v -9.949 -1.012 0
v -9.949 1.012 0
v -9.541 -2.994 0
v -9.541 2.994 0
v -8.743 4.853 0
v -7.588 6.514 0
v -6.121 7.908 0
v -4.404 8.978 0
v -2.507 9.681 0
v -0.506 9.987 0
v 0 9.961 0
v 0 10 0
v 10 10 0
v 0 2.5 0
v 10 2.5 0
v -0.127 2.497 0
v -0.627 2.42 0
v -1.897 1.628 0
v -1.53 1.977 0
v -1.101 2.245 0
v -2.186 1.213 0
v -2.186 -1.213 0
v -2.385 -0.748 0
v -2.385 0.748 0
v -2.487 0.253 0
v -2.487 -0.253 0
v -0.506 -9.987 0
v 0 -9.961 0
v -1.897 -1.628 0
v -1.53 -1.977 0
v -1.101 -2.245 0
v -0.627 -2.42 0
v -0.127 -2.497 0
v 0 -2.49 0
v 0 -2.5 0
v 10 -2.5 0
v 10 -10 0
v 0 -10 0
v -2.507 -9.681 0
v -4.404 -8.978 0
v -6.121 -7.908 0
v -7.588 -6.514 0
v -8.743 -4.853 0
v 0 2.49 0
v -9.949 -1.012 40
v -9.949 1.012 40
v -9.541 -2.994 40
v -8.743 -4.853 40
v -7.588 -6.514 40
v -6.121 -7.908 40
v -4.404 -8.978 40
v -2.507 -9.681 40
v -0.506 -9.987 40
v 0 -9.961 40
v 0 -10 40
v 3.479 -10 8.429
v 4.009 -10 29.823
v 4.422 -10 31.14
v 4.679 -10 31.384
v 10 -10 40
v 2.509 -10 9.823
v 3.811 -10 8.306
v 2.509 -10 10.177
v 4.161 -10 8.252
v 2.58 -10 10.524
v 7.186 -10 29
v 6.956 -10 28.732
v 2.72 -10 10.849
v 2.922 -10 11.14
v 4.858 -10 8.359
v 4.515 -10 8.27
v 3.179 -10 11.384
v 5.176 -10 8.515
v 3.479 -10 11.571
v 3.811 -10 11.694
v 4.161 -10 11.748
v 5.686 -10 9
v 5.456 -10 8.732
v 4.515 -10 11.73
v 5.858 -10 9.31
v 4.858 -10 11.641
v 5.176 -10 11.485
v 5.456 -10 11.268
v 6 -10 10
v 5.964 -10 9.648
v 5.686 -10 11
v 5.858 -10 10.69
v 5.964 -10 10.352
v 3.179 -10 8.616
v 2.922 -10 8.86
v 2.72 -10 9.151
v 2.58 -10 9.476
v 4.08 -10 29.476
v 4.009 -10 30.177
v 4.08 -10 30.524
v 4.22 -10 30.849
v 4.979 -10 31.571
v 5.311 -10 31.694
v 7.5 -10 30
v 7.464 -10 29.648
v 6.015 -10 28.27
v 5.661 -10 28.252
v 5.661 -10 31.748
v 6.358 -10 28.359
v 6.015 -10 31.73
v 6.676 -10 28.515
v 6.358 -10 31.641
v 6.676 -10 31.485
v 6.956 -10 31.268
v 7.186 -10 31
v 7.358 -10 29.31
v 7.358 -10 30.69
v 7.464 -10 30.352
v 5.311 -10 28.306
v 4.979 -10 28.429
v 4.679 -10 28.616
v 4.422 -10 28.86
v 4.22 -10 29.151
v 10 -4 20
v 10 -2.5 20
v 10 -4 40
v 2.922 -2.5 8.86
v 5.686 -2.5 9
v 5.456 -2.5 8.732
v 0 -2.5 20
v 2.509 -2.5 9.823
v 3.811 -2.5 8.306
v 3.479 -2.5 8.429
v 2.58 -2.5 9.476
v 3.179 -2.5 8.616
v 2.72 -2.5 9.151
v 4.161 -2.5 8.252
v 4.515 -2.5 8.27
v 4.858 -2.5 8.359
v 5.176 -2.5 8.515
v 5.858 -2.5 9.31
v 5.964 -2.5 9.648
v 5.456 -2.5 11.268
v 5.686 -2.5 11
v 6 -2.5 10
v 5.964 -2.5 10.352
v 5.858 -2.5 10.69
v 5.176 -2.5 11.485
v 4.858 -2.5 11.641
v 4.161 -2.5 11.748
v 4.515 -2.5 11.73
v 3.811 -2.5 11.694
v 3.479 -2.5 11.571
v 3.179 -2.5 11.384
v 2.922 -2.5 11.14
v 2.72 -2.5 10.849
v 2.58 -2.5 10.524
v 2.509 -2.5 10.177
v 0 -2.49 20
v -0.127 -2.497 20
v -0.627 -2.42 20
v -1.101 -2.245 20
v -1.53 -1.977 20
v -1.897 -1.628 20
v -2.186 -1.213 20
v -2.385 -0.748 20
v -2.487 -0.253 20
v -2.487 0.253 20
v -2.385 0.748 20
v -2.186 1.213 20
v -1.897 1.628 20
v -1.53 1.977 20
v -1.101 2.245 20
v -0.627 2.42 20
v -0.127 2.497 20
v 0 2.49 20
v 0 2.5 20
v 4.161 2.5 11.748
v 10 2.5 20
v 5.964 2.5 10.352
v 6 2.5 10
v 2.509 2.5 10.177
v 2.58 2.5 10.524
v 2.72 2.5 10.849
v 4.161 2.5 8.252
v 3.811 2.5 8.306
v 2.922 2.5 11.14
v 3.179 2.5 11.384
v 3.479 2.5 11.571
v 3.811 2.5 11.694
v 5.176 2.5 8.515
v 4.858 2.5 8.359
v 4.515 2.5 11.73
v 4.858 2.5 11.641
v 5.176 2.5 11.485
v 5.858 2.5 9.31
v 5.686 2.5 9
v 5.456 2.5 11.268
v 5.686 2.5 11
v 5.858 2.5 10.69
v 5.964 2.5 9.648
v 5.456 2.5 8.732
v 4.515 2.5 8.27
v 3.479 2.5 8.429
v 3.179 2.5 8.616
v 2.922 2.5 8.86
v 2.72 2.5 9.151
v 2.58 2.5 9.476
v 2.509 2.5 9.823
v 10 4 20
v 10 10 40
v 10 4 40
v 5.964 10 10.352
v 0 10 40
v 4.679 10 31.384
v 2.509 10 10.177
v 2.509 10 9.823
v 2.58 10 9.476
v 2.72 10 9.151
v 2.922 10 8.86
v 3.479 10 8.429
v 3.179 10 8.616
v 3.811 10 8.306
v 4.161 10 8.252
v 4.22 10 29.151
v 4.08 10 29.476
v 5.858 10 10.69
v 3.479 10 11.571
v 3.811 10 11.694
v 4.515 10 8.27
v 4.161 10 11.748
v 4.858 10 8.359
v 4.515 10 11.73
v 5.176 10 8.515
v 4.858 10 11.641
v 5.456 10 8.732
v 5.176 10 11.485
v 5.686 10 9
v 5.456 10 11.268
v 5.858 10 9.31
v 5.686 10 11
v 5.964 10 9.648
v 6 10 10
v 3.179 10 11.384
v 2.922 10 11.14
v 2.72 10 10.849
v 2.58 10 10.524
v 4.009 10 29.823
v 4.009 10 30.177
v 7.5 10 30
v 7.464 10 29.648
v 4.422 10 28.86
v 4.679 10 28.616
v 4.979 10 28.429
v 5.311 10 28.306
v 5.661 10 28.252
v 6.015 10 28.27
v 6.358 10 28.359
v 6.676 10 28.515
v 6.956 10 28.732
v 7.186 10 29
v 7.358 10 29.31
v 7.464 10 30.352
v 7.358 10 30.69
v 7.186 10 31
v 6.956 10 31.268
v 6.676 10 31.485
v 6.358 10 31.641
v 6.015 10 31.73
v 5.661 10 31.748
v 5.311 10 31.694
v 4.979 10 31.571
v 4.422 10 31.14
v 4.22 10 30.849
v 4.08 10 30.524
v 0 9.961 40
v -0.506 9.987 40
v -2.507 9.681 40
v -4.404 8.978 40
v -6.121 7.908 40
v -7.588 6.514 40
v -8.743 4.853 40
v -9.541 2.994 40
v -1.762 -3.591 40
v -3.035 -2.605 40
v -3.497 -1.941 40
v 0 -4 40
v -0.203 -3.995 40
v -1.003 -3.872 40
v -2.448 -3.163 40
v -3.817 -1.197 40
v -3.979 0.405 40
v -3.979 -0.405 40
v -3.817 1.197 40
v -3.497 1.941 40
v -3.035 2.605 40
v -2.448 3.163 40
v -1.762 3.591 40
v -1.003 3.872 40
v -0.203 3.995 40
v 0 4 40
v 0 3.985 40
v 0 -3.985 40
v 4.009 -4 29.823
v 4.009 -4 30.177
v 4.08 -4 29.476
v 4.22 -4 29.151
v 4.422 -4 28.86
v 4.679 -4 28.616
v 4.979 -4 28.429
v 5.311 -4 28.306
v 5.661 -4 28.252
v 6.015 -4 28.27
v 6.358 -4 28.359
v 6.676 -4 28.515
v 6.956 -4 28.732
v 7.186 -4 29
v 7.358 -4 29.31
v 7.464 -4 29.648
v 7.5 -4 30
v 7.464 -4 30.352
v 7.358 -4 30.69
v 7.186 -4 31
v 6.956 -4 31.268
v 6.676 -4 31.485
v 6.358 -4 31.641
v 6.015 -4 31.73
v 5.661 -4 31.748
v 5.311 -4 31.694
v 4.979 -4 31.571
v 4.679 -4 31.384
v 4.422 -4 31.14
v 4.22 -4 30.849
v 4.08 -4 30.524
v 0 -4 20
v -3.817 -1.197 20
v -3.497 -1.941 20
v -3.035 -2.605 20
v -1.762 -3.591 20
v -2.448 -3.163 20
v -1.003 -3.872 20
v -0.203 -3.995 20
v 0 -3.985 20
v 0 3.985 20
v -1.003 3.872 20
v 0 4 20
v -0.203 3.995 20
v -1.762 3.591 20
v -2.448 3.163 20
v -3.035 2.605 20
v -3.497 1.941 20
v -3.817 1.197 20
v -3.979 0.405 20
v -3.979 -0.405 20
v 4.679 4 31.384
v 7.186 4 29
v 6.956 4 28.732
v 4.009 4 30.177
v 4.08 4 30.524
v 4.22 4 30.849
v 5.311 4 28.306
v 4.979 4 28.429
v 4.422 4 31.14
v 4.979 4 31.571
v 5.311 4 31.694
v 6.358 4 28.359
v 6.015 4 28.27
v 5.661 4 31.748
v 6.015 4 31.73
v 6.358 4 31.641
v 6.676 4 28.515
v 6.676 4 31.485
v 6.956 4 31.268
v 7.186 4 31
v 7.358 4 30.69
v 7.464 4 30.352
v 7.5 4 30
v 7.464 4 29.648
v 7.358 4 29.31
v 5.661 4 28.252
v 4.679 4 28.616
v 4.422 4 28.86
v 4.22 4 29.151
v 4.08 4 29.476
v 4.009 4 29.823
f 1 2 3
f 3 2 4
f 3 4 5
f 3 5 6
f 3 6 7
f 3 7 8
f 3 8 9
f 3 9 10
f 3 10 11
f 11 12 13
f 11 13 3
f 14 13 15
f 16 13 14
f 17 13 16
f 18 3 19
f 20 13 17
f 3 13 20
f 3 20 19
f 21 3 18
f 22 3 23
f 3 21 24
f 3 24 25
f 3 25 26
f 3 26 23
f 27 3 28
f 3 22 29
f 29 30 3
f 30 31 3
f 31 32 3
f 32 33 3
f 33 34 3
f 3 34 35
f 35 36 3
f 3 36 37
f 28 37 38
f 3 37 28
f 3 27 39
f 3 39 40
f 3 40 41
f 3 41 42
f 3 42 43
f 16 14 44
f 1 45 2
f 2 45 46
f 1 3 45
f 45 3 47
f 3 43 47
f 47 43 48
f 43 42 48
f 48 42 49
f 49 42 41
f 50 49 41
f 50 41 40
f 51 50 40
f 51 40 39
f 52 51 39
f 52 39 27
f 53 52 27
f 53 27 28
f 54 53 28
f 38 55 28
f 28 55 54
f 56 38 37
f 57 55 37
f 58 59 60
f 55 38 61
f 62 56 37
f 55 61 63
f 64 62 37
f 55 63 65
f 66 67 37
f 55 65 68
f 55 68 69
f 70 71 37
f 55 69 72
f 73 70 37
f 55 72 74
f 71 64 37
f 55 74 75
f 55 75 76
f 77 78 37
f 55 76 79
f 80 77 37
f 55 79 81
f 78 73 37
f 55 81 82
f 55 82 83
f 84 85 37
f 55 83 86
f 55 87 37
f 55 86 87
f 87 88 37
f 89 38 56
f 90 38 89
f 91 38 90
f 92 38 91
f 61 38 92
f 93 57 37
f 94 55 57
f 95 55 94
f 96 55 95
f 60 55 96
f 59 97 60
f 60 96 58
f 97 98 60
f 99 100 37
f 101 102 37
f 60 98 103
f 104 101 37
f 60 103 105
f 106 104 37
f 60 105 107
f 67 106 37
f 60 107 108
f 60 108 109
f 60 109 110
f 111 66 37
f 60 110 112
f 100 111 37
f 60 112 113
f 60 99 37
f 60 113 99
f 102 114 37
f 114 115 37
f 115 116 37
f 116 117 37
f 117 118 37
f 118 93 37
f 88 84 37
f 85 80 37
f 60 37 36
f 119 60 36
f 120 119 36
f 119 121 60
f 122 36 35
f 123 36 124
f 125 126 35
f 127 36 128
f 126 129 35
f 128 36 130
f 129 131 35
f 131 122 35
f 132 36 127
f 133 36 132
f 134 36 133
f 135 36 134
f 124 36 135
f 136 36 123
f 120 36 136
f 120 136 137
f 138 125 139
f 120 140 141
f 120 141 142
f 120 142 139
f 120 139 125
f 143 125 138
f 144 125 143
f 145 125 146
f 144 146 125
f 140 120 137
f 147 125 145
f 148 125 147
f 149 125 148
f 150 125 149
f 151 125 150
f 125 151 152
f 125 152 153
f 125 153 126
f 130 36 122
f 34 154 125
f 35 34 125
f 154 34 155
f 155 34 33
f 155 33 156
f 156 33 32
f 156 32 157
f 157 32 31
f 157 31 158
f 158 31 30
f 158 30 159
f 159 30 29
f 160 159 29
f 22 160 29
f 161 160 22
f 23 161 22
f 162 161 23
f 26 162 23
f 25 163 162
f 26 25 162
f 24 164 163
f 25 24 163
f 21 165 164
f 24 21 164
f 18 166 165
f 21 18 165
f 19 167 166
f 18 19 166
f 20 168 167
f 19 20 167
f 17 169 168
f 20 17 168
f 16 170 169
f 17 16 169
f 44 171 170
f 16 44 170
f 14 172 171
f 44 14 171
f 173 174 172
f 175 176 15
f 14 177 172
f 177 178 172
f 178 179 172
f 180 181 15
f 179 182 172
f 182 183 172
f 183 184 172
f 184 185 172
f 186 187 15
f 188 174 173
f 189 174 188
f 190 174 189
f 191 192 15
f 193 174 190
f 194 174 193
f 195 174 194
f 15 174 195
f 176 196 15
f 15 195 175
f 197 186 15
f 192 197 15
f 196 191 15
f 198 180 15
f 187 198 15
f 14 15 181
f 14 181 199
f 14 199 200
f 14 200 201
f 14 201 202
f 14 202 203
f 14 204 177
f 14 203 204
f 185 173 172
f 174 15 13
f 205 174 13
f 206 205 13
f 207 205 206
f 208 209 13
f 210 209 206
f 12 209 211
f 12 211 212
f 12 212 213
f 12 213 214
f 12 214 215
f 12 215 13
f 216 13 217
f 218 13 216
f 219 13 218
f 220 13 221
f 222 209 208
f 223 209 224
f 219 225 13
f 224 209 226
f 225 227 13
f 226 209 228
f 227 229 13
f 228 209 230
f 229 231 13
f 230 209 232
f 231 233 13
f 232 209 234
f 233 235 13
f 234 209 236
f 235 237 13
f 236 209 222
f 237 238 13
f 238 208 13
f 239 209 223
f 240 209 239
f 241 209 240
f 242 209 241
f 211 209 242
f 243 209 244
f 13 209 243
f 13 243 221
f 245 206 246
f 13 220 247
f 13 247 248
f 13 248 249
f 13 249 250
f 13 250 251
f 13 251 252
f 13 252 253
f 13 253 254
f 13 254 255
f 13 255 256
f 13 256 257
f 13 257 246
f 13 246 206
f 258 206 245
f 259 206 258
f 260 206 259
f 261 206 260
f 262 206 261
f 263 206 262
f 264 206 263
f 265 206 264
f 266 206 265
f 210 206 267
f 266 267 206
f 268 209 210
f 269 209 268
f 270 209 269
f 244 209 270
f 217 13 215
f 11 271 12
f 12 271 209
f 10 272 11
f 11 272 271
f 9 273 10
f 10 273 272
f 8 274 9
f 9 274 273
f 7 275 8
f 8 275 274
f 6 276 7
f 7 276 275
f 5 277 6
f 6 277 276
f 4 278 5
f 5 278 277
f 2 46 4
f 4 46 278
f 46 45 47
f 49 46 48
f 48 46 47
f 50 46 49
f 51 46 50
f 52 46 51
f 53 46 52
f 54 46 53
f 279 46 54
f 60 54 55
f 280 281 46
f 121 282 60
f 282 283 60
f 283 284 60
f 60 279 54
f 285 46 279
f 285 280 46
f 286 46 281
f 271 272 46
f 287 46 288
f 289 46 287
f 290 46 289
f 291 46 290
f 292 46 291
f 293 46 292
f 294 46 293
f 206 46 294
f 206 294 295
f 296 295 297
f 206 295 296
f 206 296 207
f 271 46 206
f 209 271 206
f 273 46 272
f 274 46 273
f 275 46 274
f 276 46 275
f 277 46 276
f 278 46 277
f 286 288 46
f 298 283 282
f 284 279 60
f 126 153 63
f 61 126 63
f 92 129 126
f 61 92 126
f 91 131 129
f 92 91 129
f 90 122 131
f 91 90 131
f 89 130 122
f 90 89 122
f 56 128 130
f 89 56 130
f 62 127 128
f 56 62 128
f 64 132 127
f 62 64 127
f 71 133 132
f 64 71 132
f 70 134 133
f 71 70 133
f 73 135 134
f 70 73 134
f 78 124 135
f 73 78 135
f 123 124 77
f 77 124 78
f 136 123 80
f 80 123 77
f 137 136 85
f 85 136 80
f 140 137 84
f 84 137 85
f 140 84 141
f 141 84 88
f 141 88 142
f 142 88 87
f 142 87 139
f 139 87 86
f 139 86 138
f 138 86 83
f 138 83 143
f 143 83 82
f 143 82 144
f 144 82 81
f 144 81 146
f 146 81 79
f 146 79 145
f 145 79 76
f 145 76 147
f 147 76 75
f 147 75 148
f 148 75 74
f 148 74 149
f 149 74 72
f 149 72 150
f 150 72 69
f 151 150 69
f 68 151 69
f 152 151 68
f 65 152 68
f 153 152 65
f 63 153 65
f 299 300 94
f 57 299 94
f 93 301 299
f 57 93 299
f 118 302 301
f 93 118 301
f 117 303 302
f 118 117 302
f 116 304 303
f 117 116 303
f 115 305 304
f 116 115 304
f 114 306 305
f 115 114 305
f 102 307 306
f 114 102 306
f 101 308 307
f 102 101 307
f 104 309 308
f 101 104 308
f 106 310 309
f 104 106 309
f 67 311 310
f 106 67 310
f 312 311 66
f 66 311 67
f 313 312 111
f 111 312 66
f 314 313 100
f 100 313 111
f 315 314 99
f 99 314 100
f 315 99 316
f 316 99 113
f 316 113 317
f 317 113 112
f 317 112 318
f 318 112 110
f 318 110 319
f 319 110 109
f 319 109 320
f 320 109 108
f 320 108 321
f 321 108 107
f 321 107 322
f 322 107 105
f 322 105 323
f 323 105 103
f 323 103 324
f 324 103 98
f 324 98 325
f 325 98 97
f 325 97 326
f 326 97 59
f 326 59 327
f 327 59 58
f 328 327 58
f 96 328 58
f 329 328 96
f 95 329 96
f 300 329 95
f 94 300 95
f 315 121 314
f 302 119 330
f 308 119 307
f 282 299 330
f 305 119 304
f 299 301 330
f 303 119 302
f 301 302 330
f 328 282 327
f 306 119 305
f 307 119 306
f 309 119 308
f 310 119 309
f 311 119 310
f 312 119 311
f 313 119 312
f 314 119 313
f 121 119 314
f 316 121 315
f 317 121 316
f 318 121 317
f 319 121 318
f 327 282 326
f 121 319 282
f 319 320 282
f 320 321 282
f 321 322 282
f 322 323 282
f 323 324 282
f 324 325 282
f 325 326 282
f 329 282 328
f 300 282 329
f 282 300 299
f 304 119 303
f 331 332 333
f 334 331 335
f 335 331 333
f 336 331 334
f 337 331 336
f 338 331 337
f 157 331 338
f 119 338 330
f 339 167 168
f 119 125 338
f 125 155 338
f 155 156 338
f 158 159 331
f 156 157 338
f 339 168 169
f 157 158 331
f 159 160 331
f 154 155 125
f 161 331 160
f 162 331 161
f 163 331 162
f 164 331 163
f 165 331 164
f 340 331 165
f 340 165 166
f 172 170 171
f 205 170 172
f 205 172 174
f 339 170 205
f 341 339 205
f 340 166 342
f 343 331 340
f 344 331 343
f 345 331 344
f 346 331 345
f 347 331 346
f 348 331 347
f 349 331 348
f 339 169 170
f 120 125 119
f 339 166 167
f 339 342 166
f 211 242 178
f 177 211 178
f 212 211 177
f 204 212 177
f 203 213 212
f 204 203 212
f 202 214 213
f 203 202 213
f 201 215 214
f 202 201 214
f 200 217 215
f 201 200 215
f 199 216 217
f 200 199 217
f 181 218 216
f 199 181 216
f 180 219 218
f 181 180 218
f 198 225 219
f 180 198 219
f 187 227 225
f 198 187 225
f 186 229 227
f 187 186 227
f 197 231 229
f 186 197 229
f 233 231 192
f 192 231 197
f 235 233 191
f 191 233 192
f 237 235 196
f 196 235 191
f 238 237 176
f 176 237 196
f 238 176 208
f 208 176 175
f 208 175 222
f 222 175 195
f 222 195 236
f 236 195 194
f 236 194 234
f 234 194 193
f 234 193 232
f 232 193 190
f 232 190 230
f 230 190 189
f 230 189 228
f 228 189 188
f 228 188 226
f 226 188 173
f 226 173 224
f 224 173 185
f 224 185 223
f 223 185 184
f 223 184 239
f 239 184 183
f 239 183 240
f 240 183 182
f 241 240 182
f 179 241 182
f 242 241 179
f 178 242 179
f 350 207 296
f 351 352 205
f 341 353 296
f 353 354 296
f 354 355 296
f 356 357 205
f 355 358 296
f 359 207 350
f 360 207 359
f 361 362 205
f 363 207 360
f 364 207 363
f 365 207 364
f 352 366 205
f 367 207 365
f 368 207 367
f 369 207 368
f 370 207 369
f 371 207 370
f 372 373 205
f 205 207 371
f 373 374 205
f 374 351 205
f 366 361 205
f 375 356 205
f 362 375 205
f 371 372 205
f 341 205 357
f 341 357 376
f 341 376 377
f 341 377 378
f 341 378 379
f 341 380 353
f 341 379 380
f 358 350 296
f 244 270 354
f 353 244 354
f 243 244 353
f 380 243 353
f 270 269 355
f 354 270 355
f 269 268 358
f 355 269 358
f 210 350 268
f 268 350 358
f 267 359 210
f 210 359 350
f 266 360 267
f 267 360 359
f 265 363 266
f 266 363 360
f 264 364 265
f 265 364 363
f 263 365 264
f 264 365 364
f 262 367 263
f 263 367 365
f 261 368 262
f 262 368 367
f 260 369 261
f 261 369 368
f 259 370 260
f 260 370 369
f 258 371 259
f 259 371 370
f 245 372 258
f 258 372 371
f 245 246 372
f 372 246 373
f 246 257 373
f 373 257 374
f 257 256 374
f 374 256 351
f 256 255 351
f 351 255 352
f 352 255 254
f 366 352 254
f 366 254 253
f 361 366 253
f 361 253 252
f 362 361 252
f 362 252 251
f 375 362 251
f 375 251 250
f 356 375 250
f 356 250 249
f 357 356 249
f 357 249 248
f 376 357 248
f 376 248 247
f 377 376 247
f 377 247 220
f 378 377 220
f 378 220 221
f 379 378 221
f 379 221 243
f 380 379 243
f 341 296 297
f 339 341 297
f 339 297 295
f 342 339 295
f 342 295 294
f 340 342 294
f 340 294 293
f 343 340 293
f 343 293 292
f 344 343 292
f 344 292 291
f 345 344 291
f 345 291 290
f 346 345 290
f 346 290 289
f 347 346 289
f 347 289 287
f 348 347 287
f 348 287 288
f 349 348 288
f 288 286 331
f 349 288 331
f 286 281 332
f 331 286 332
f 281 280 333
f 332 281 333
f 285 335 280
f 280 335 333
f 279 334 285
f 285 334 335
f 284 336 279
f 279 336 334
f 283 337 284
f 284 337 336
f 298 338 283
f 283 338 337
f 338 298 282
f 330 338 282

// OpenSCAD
// file: config.scad
// https://docs.google.com/viewer?a=v&pid=explorer&chrome=true&srcid=0B8AGtzEPL1XpNGIwMjM0NzQtZmMyMS00YmU2LTkwMjItNTkzNzA0MDJkZTAx&hl=en_US&authkey=CMjZjW0

$fn = 31;

//Delta config constants
upperlinkage = 63; 
lowerlinkage = 126;
baseradius = 45;
endeffector = 50; //radius of the end effector
fourbarspacing = 70;

//hardware
screwdia = 3.5; //m3
screwheaddia = 5.6; //m3
screwheadheight = 3.2; //m3
nutapothem = 5.7; //m3
nutheight = 2.5; //m3 lock nut

//motors 
holespacing = 17*2.54*sin(45); //nema 17
shaftlength = 22;
shaftdia = 5;
bodylength = 48;
bodywidth = 42; //could also be diameter of a round servo
motorwall = 2.75;
motorcenterdia = 25;

//Structure pieces
structbase = 110;  //180
structheight = 40;  //70
structholes = 3; //how many holes are on each side. 
structthickness = 2;
structbracewidth = 9;

//z axis plates
smoothroddia = 8;
platelength = 110;
platethickness = 3;

//cups
cupwall = 2.7;


//base
basemotorwall = 2.7;

//upper linkage
upperlinkthick = nutapothem/cos(30);
upperlinkwidth = 20;

//coupling
leadscrewdia = 8;
couplingwall = 6;
couplingheight = 40;

//general shit
nutwall = nutapothem/4;
// main file
/*
  Deltafab - A Fully Parametric and Printable RepRap
    Copyright (C) 2011  Steve Kelly

    This program is free software: you can redistribute it and/or modify
    it under the terms of the GNU General Public License as published by
    the Free Software Foundation, either version 3 of the License, or
    (at your option) any later version.

    This program is distributed in the hope that it will be useful,
    but WITHOUT ANY WARRANTY; without even the implied warranty of
    MERCHANTABILITY or FITNESS FOR A PARTICULAR PURPOSE.  See the
    GNU General Public License for more details.

    You should have received a copy of the GNU General Public License
    along with this program.  If not, see <http://www.gnu.org/licenses/>.
*/

include <config.scad>;
	//Breakout and distributed vars

module coupling(){
	difference(){
		union(){
			cylinder( r=leadscrewdia/2+couplingwall, h = couplingheight);
			translate([0,-leadscrewdia/2-couplingwall,0])cube([leadscrewdia/2+couplingwall,leadscrewdia+couplingwall*2,couplingheight]);
		}
		translate([0,0,couplingheight/2])cylinder( r=leadscrewdia/2, h = couplingheight/2+1);
		translate([0,-leadscrewdia/2,couplingheight/2])cube([leadscrewdia/2+couplingwall+1,leadscrewdia,couplingheight/2+1]);
		translate([0,0,-1])cylinder( r=shaftdia/2, h = couplingheight/2+1);
		translate([0,-shaftdia/2,-1])cube([leadscrewdia/2+couplingwall+1,shaftdia,couplingheight/2+1]);
		translate([shaftdia/2+screwdia/2,leadscrewdia/2+couplingwall+1,couplingheight/4])rotate([90,0,0])cylinder(r=screwdia/2, h=leadscrewdia+couplingwall*2+2);
		translate([leadscrewdia/2+screwdia/2,leadscrewdia/2+couplingwall+1,couplingheight*0.75])rotate([90,0,0])cylinder(r=screwdia/2, h=leadscrewdia+couplingwall*2+2);
	}
}

coupling();
